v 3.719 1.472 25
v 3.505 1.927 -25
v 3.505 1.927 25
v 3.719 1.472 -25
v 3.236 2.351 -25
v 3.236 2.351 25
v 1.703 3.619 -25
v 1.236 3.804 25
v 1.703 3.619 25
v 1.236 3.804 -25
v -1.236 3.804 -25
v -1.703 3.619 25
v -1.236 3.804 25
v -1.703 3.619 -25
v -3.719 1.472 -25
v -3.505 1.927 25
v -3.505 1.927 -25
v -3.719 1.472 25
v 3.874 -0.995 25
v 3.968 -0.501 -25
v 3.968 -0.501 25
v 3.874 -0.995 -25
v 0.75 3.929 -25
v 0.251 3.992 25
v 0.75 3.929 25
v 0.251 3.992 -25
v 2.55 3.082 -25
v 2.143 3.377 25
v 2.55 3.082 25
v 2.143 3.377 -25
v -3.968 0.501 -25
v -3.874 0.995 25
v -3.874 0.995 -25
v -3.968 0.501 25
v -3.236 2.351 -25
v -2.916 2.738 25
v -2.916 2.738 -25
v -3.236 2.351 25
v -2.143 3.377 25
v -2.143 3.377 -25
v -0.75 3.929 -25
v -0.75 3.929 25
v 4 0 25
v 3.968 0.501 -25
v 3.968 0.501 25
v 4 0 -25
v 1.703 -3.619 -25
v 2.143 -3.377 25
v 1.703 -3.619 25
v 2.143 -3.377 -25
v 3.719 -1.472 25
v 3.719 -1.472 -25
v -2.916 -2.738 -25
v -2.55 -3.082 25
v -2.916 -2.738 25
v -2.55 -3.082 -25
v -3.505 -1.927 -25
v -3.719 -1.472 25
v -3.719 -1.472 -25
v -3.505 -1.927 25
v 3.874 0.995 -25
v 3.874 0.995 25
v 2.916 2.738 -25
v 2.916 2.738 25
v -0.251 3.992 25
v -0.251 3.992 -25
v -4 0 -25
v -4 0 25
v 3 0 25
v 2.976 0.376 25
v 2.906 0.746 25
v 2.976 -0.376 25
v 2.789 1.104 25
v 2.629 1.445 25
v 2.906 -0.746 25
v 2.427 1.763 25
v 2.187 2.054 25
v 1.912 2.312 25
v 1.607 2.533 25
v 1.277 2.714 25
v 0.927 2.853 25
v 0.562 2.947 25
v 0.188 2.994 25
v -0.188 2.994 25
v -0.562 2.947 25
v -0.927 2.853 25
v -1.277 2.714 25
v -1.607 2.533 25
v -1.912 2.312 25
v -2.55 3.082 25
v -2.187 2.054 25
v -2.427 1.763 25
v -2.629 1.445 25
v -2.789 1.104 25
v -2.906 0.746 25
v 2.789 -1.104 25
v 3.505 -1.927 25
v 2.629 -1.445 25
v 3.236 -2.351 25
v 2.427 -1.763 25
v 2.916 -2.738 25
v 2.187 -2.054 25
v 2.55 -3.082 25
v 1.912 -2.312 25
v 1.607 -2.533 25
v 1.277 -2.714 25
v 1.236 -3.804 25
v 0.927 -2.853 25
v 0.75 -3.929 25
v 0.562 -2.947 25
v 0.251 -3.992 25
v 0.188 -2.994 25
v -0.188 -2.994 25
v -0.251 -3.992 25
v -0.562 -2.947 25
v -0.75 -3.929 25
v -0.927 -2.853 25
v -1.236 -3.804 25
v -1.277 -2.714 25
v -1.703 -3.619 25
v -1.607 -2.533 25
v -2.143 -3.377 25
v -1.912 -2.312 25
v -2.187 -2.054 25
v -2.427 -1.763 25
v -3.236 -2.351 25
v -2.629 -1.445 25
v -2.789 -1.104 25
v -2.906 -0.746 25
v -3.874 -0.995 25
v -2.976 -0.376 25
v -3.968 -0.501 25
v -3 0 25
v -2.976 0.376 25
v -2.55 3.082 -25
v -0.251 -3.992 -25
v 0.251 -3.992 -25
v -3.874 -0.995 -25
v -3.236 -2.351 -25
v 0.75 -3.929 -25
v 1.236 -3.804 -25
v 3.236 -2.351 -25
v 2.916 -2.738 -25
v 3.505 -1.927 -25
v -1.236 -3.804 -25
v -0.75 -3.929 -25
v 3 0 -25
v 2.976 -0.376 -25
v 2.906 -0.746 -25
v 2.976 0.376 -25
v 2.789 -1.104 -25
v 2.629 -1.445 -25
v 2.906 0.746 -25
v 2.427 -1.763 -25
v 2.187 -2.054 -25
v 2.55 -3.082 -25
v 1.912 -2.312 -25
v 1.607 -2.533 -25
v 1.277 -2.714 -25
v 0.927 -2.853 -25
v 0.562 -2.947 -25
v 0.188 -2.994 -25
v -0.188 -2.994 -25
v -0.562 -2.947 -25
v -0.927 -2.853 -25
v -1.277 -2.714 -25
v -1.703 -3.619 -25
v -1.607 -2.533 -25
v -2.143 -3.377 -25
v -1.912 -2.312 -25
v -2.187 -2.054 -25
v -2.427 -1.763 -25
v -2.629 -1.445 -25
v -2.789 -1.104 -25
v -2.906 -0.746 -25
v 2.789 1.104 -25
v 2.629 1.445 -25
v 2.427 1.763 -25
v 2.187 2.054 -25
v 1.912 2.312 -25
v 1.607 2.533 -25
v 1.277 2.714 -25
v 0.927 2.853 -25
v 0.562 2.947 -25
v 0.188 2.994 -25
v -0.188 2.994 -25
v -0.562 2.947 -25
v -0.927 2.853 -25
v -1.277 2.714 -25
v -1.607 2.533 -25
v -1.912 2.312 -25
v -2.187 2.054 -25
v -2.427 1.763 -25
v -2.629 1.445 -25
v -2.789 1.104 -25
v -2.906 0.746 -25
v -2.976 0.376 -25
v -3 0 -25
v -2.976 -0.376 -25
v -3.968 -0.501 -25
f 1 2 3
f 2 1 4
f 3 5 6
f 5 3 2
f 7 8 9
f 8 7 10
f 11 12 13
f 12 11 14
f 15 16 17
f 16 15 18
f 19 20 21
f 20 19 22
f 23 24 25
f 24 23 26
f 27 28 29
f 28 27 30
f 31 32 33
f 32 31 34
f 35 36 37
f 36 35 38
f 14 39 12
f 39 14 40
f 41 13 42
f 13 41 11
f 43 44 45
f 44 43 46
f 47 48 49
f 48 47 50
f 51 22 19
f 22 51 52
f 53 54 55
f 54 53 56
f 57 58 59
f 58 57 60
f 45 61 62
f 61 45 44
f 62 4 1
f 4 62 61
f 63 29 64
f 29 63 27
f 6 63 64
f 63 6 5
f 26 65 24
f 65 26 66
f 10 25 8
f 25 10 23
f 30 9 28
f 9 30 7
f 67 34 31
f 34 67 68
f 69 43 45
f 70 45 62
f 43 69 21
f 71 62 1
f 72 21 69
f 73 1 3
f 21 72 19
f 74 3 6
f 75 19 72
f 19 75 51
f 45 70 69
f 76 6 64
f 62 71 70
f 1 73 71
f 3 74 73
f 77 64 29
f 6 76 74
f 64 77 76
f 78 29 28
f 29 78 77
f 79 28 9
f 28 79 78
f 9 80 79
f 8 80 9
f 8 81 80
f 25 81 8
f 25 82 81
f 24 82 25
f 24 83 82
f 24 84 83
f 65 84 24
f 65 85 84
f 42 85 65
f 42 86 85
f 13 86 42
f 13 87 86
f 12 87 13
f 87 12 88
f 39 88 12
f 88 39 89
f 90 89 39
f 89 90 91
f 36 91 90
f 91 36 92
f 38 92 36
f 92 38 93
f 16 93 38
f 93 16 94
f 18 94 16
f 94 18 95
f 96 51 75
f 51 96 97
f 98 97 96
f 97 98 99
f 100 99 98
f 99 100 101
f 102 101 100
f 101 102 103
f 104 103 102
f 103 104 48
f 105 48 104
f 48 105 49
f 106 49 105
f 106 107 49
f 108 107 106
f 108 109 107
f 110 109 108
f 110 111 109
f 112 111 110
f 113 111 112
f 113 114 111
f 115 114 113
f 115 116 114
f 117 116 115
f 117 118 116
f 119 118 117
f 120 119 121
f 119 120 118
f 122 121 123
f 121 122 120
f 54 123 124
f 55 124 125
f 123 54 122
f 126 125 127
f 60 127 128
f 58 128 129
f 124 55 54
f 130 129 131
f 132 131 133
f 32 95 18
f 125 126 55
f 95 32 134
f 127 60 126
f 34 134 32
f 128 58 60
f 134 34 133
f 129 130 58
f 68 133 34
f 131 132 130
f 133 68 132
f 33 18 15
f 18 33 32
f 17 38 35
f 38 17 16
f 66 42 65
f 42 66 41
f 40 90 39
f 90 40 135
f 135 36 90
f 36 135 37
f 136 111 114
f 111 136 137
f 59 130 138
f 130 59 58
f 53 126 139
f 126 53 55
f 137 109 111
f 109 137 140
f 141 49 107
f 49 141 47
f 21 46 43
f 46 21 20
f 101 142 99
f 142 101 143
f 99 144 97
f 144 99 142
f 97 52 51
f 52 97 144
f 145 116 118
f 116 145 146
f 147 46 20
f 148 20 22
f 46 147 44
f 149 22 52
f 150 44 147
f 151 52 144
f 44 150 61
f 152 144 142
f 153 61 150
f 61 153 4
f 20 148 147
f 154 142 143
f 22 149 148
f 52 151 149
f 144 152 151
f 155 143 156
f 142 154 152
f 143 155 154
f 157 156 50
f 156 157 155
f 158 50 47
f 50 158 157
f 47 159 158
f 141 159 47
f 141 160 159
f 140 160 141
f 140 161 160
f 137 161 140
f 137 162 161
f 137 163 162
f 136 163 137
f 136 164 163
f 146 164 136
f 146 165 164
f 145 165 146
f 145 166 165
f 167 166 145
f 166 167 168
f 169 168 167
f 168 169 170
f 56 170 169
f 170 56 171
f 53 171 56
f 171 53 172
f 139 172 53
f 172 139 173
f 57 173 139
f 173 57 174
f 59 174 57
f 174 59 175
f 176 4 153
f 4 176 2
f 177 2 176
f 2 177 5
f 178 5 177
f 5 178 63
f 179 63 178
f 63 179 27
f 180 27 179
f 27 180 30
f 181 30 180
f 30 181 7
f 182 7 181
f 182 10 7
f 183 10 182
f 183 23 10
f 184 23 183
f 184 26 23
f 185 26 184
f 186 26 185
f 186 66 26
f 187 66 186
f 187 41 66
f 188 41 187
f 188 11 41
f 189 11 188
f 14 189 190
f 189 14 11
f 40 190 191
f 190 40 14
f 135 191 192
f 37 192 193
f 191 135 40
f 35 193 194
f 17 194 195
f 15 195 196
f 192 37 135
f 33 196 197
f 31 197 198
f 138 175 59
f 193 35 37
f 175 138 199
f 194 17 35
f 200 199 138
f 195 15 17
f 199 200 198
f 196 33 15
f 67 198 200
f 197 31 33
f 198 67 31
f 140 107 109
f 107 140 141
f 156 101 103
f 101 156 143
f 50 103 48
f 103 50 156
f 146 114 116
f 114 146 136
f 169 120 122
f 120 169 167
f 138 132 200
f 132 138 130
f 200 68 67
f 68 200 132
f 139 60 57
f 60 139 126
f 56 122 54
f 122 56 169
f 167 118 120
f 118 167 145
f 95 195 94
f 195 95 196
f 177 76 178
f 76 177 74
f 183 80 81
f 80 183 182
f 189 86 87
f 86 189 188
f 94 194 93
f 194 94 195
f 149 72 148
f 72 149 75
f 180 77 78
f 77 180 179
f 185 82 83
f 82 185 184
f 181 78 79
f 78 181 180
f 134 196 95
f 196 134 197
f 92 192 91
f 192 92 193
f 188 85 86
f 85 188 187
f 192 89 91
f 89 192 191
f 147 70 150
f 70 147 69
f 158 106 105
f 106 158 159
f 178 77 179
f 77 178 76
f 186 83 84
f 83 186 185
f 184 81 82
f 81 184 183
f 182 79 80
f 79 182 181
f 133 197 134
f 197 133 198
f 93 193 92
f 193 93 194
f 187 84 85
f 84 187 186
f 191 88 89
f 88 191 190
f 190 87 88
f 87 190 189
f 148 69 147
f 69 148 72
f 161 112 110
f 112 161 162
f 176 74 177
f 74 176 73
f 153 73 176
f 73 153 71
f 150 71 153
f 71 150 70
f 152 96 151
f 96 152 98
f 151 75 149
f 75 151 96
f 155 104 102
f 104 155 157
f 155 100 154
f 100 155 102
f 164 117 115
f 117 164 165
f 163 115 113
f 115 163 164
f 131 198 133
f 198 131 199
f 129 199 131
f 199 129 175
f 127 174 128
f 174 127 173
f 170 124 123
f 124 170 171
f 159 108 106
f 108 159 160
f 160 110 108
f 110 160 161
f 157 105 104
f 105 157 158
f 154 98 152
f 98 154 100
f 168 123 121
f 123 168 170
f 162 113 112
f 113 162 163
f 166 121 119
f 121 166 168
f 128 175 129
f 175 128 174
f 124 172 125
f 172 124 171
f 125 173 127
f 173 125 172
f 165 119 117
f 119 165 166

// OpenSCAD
$fn = 50;


difference() {
	union() {
		translate(v = [0, 0, -25.0000000000]) {
			cylinder(h = 50, r = 4.0000000000);
		}
	}
	union() {
		translate(v = [0, 0, -100.0000000000]) {
			cylinder(h = 200, r = 3);
		}
	}
}
